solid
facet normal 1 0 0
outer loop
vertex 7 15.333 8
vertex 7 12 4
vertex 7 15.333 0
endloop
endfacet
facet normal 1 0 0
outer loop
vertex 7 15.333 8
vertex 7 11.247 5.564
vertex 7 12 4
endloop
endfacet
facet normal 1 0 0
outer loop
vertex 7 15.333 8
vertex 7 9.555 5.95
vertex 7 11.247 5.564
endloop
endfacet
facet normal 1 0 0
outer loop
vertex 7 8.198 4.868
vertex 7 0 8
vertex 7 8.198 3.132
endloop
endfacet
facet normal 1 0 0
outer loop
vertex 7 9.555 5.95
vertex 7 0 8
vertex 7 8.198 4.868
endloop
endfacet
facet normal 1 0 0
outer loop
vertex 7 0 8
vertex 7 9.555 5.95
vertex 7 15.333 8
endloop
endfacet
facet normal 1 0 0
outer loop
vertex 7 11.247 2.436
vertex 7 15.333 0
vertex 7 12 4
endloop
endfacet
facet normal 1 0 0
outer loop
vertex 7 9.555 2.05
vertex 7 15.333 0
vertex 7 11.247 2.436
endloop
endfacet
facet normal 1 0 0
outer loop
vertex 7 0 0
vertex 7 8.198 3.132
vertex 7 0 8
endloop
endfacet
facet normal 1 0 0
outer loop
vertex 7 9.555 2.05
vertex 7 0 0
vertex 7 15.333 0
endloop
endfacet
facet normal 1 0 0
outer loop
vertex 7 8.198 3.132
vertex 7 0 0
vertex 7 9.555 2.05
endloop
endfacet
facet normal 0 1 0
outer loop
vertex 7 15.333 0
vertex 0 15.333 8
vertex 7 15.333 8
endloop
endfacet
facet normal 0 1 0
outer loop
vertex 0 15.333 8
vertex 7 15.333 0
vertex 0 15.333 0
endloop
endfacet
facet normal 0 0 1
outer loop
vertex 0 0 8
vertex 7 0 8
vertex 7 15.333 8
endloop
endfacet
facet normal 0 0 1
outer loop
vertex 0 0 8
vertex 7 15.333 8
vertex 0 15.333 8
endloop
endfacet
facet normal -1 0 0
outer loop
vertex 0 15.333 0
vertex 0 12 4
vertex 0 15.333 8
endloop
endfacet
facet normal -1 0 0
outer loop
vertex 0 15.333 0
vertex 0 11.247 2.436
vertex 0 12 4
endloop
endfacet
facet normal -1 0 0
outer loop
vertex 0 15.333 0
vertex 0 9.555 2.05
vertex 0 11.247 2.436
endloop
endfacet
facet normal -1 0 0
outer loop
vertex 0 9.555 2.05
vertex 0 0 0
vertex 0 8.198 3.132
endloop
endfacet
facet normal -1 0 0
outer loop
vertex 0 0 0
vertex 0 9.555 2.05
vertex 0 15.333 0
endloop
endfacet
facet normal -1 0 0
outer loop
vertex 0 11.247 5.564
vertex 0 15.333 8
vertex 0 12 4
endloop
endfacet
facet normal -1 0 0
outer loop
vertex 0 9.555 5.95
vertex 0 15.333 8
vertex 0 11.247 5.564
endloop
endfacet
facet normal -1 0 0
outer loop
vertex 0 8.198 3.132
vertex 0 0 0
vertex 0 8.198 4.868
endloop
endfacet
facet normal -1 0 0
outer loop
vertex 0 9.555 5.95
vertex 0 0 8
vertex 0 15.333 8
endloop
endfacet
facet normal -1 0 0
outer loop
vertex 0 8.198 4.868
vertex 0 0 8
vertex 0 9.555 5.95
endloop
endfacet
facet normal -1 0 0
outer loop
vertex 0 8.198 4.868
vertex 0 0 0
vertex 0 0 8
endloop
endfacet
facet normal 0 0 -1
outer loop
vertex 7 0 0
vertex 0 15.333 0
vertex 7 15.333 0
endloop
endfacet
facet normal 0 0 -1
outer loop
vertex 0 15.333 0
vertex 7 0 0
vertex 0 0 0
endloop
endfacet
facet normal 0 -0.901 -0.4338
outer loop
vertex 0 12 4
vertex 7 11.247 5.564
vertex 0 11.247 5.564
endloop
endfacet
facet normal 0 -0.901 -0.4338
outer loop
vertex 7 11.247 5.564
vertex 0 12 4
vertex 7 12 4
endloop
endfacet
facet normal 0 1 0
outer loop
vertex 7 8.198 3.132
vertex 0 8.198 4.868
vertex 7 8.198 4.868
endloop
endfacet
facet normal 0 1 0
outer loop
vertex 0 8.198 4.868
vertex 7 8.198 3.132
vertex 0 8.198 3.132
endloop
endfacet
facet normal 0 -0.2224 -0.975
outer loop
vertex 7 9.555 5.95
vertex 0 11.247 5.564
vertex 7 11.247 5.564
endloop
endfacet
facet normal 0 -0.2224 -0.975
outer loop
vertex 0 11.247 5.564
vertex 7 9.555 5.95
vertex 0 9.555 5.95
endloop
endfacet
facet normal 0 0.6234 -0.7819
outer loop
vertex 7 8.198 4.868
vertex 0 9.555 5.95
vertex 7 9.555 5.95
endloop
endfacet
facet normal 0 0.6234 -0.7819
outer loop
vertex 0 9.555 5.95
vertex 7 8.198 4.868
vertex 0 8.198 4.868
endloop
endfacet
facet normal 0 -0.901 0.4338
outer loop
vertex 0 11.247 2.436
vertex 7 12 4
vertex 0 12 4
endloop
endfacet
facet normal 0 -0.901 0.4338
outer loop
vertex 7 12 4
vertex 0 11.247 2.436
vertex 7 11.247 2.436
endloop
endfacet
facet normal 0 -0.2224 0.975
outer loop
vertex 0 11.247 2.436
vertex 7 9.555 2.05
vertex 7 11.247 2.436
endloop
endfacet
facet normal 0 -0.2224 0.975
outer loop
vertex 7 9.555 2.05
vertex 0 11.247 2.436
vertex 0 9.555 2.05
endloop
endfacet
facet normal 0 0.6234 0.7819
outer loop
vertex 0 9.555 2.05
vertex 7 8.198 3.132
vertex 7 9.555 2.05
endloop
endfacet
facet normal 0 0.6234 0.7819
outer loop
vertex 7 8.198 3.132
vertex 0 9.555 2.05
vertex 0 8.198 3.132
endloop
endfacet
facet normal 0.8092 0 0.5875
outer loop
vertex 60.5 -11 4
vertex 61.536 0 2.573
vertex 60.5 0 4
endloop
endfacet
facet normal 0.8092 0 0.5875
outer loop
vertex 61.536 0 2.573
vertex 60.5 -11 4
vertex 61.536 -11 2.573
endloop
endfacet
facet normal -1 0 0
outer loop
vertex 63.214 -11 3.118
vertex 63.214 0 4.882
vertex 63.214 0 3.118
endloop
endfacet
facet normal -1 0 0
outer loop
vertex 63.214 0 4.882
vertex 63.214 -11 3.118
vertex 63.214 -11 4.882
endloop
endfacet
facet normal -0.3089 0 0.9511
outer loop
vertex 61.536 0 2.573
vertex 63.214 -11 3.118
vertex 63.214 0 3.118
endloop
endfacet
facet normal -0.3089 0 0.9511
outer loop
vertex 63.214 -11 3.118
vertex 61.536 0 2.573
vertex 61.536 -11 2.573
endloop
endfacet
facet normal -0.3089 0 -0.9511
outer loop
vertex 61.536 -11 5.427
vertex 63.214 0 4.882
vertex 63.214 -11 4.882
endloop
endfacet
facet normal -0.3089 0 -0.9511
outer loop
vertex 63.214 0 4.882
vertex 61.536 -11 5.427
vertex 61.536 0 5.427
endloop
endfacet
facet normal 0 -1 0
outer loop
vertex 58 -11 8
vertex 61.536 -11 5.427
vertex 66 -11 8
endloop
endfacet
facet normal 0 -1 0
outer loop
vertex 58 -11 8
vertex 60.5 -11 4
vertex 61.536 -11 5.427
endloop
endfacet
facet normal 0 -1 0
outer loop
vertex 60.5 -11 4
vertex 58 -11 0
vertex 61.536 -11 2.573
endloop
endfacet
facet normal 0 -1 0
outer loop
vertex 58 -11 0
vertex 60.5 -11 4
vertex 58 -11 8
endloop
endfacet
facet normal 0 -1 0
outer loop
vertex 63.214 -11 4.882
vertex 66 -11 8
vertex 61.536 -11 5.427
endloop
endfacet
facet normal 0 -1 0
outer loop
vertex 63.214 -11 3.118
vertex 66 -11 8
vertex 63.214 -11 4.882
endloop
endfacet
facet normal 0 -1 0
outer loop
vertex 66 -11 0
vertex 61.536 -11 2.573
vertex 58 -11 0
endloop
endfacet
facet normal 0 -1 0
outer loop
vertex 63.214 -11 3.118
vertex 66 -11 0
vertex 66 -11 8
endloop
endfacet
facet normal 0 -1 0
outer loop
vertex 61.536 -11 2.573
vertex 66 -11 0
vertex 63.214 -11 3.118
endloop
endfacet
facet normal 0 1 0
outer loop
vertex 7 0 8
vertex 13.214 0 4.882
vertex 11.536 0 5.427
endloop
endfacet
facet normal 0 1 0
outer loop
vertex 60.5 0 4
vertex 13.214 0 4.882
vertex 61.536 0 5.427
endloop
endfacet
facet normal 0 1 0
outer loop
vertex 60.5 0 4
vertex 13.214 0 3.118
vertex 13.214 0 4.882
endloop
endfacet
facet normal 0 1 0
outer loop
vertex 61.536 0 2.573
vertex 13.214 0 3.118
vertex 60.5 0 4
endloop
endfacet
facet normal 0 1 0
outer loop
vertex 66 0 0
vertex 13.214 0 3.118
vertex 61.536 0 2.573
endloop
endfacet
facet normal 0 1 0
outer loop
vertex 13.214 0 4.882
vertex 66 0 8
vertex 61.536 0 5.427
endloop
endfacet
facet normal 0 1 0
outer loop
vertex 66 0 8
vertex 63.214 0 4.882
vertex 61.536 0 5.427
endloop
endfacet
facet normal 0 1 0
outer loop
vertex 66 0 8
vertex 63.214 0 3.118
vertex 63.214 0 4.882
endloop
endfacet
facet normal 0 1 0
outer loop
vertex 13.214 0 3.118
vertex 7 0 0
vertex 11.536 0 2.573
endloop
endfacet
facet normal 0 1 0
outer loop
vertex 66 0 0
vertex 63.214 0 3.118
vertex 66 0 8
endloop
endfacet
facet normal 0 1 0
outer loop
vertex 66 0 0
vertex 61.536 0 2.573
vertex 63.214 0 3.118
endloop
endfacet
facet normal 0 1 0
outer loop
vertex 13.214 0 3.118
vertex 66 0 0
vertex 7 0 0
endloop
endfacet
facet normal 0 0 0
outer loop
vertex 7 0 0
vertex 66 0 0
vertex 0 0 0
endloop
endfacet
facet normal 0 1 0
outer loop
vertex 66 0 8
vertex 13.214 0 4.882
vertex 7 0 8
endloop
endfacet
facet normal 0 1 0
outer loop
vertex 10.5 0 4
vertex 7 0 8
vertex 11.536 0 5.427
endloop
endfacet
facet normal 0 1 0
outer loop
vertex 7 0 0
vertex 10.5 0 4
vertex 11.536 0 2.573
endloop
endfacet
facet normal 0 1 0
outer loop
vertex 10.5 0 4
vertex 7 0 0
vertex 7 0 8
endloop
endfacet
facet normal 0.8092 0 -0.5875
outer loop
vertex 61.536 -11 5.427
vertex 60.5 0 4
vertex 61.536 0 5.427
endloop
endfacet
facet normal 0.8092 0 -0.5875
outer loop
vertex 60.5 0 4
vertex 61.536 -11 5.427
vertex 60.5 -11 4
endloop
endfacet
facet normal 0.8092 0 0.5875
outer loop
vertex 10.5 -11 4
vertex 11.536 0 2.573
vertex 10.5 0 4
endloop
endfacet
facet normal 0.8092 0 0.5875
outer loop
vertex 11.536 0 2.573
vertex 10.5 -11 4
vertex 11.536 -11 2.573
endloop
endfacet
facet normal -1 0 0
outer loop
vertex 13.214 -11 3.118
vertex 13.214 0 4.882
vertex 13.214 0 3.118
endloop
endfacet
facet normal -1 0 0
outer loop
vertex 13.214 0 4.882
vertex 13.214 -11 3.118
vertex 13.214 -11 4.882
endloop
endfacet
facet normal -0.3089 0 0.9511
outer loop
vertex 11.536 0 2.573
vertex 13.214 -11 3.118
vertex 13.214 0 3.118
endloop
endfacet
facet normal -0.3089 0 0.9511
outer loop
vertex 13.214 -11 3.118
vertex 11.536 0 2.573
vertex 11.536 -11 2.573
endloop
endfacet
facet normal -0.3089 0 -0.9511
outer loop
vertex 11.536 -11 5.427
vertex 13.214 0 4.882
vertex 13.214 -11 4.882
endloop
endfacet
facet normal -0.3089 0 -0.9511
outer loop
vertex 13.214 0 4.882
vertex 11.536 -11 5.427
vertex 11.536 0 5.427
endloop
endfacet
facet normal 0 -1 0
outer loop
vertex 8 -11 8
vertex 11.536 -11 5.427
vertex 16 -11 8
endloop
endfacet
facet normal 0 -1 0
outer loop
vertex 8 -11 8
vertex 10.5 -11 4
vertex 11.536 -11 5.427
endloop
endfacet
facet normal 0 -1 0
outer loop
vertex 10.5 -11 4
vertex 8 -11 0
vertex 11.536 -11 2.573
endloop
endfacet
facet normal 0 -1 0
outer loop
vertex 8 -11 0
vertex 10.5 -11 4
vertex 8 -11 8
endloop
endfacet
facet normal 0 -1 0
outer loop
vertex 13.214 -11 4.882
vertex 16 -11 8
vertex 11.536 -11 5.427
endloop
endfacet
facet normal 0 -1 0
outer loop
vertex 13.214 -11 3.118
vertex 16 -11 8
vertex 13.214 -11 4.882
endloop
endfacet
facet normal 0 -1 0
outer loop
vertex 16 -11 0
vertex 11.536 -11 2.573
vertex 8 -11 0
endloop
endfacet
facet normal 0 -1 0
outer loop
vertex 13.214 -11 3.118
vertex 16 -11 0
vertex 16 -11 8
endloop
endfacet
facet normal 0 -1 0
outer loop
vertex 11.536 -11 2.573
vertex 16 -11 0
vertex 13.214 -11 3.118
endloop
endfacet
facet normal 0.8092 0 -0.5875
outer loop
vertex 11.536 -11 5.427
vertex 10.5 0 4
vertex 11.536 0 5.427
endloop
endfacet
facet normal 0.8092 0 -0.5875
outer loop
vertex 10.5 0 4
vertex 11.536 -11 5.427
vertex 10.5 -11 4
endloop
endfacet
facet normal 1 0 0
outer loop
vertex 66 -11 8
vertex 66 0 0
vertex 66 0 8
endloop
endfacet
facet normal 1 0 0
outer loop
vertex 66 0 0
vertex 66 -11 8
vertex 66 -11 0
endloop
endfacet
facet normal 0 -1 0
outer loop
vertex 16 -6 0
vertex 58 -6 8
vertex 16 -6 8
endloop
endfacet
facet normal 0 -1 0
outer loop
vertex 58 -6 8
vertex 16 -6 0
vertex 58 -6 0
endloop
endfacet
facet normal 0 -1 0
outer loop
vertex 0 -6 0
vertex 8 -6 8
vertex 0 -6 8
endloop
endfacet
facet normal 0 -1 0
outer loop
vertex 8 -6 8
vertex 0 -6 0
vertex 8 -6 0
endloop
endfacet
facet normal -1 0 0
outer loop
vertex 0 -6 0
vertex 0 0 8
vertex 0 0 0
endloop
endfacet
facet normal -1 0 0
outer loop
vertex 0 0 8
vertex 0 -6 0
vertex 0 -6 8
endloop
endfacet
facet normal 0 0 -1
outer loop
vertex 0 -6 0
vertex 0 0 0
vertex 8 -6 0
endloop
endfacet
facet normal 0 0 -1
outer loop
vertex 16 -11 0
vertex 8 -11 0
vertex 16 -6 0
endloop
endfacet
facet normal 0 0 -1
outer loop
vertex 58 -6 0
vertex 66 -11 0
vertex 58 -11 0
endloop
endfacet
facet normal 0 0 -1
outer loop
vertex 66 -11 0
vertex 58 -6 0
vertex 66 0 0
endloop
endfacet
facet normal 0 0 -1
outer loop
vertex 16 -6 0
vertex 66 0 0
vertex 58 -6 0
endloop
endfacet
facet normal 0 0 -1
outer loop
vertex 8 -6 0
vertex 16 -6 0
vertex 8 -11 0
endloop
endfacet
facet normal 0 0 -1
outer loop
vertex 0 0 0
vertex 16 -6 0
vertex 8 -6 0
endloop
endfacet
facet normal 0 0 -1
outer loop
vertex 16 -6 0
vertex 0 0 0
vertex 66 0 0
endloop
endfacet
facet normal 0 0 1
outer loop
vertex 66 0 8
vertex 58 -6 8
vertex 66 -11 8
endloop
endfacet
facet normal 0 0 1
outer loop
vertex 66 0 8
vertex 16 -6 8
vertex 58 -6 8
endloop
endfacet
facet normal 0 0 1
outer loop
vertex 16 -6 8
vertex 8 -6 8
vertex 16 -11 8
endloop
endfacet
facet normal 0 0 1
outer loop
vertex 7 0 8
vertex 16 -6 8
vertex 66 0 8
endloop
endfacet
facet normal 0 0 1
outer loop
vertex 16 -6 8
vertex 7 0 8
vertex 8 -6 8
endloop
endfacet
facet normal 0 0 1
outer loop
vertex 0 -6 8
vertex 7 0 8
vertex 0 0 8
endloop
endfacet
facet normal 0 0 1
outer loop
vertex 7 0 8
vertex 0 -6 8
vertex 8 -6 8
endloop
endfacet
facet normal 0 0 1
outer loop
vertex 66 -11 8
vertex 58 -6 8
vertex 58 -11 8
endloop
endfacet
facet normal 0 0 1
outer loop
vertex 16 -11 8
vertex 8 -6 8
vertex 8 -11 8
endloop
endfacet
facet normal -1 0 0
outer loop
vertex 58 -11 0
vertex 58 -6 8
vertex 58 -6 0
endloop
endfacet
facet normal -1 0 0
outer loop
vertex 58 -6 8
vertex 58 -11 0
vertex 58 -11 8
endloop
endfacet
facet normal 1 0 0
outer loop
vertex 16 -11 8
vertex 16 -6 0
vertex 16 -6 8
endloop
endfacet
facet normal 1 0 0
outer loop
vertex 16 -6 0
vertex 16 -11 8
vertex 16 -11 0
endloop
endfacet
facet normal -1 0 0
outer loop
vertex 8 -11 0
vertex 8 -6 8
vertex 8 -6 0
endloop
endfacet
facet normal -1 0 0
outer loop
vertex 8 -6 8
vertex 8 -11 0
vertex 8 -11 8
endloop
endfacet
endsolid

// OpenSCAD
/* globals */
gWidth     =  8;

/* top piece */

tHoleSpace = 10;
tHoleSize  =  4;
tHeight    =  7;
tWidth     =  gWidth;
tOver      =  6;
tLength    = tHoleSpace + tWidth * (2/3);

//translate([0,-tOver,0])
rotate(a=90,v=[0,0,1])
rotate(a=90,v=[1,0,0])

difference() {
    
    // create bar
    cube([tLength,tWidth,tHeight]);
    
    // create hole
    translate([tHoleSpace,tWidth/2,0])
    cylinder(d=tHoleSize, h=tHeight);
}


/* end top piece */

/* vertical piece */

vOffset    =  8; 
vWidth     =  gWidth;
vBarHeight =  6;
padHeight  =  5;
vHoleSpace = 50;
vLength    = vHoleSpace + vWidth + vOffset;
vHoleSize  =  3;

// flip to side
translate([vLength,0,vWidth]) {
rotate(a=180,v=[0,0,1]) {
rotate(a=-90,v=[1,0,0]) {
    
    // subtract holes from bar
    difference() {
        
        // create bar
        union() {
            // main bar
            cube([vLength,vWidth,vBarHeight]);
            
            // top pad
            translate([0,0,vBarHeight])
            cube([vWidth,vWidth,padHeight]);
            
            // bottom pad
            translate([vLength-vWidth-vOffset,0,vBarHeight])
            cube([vWidth,vWidth,padHeight]);
        } // end create bar
        
        // create holes
        union() {
            // top hole
            translate([vWidth/2,vWidth/2,0])
            cylinder(d=vHoleSize,h=vBarHeight+padHeight);

            // bottom hole
            translate([vLength-(vWidth/2)-vOffset,vWidth/2,0])
            cylinder(d=vHoleSize,h=vBarHeight+padHeight);
        } // end holes
        
    } // end difference
    
} } // end rotate
}

/* end vertical piece */
